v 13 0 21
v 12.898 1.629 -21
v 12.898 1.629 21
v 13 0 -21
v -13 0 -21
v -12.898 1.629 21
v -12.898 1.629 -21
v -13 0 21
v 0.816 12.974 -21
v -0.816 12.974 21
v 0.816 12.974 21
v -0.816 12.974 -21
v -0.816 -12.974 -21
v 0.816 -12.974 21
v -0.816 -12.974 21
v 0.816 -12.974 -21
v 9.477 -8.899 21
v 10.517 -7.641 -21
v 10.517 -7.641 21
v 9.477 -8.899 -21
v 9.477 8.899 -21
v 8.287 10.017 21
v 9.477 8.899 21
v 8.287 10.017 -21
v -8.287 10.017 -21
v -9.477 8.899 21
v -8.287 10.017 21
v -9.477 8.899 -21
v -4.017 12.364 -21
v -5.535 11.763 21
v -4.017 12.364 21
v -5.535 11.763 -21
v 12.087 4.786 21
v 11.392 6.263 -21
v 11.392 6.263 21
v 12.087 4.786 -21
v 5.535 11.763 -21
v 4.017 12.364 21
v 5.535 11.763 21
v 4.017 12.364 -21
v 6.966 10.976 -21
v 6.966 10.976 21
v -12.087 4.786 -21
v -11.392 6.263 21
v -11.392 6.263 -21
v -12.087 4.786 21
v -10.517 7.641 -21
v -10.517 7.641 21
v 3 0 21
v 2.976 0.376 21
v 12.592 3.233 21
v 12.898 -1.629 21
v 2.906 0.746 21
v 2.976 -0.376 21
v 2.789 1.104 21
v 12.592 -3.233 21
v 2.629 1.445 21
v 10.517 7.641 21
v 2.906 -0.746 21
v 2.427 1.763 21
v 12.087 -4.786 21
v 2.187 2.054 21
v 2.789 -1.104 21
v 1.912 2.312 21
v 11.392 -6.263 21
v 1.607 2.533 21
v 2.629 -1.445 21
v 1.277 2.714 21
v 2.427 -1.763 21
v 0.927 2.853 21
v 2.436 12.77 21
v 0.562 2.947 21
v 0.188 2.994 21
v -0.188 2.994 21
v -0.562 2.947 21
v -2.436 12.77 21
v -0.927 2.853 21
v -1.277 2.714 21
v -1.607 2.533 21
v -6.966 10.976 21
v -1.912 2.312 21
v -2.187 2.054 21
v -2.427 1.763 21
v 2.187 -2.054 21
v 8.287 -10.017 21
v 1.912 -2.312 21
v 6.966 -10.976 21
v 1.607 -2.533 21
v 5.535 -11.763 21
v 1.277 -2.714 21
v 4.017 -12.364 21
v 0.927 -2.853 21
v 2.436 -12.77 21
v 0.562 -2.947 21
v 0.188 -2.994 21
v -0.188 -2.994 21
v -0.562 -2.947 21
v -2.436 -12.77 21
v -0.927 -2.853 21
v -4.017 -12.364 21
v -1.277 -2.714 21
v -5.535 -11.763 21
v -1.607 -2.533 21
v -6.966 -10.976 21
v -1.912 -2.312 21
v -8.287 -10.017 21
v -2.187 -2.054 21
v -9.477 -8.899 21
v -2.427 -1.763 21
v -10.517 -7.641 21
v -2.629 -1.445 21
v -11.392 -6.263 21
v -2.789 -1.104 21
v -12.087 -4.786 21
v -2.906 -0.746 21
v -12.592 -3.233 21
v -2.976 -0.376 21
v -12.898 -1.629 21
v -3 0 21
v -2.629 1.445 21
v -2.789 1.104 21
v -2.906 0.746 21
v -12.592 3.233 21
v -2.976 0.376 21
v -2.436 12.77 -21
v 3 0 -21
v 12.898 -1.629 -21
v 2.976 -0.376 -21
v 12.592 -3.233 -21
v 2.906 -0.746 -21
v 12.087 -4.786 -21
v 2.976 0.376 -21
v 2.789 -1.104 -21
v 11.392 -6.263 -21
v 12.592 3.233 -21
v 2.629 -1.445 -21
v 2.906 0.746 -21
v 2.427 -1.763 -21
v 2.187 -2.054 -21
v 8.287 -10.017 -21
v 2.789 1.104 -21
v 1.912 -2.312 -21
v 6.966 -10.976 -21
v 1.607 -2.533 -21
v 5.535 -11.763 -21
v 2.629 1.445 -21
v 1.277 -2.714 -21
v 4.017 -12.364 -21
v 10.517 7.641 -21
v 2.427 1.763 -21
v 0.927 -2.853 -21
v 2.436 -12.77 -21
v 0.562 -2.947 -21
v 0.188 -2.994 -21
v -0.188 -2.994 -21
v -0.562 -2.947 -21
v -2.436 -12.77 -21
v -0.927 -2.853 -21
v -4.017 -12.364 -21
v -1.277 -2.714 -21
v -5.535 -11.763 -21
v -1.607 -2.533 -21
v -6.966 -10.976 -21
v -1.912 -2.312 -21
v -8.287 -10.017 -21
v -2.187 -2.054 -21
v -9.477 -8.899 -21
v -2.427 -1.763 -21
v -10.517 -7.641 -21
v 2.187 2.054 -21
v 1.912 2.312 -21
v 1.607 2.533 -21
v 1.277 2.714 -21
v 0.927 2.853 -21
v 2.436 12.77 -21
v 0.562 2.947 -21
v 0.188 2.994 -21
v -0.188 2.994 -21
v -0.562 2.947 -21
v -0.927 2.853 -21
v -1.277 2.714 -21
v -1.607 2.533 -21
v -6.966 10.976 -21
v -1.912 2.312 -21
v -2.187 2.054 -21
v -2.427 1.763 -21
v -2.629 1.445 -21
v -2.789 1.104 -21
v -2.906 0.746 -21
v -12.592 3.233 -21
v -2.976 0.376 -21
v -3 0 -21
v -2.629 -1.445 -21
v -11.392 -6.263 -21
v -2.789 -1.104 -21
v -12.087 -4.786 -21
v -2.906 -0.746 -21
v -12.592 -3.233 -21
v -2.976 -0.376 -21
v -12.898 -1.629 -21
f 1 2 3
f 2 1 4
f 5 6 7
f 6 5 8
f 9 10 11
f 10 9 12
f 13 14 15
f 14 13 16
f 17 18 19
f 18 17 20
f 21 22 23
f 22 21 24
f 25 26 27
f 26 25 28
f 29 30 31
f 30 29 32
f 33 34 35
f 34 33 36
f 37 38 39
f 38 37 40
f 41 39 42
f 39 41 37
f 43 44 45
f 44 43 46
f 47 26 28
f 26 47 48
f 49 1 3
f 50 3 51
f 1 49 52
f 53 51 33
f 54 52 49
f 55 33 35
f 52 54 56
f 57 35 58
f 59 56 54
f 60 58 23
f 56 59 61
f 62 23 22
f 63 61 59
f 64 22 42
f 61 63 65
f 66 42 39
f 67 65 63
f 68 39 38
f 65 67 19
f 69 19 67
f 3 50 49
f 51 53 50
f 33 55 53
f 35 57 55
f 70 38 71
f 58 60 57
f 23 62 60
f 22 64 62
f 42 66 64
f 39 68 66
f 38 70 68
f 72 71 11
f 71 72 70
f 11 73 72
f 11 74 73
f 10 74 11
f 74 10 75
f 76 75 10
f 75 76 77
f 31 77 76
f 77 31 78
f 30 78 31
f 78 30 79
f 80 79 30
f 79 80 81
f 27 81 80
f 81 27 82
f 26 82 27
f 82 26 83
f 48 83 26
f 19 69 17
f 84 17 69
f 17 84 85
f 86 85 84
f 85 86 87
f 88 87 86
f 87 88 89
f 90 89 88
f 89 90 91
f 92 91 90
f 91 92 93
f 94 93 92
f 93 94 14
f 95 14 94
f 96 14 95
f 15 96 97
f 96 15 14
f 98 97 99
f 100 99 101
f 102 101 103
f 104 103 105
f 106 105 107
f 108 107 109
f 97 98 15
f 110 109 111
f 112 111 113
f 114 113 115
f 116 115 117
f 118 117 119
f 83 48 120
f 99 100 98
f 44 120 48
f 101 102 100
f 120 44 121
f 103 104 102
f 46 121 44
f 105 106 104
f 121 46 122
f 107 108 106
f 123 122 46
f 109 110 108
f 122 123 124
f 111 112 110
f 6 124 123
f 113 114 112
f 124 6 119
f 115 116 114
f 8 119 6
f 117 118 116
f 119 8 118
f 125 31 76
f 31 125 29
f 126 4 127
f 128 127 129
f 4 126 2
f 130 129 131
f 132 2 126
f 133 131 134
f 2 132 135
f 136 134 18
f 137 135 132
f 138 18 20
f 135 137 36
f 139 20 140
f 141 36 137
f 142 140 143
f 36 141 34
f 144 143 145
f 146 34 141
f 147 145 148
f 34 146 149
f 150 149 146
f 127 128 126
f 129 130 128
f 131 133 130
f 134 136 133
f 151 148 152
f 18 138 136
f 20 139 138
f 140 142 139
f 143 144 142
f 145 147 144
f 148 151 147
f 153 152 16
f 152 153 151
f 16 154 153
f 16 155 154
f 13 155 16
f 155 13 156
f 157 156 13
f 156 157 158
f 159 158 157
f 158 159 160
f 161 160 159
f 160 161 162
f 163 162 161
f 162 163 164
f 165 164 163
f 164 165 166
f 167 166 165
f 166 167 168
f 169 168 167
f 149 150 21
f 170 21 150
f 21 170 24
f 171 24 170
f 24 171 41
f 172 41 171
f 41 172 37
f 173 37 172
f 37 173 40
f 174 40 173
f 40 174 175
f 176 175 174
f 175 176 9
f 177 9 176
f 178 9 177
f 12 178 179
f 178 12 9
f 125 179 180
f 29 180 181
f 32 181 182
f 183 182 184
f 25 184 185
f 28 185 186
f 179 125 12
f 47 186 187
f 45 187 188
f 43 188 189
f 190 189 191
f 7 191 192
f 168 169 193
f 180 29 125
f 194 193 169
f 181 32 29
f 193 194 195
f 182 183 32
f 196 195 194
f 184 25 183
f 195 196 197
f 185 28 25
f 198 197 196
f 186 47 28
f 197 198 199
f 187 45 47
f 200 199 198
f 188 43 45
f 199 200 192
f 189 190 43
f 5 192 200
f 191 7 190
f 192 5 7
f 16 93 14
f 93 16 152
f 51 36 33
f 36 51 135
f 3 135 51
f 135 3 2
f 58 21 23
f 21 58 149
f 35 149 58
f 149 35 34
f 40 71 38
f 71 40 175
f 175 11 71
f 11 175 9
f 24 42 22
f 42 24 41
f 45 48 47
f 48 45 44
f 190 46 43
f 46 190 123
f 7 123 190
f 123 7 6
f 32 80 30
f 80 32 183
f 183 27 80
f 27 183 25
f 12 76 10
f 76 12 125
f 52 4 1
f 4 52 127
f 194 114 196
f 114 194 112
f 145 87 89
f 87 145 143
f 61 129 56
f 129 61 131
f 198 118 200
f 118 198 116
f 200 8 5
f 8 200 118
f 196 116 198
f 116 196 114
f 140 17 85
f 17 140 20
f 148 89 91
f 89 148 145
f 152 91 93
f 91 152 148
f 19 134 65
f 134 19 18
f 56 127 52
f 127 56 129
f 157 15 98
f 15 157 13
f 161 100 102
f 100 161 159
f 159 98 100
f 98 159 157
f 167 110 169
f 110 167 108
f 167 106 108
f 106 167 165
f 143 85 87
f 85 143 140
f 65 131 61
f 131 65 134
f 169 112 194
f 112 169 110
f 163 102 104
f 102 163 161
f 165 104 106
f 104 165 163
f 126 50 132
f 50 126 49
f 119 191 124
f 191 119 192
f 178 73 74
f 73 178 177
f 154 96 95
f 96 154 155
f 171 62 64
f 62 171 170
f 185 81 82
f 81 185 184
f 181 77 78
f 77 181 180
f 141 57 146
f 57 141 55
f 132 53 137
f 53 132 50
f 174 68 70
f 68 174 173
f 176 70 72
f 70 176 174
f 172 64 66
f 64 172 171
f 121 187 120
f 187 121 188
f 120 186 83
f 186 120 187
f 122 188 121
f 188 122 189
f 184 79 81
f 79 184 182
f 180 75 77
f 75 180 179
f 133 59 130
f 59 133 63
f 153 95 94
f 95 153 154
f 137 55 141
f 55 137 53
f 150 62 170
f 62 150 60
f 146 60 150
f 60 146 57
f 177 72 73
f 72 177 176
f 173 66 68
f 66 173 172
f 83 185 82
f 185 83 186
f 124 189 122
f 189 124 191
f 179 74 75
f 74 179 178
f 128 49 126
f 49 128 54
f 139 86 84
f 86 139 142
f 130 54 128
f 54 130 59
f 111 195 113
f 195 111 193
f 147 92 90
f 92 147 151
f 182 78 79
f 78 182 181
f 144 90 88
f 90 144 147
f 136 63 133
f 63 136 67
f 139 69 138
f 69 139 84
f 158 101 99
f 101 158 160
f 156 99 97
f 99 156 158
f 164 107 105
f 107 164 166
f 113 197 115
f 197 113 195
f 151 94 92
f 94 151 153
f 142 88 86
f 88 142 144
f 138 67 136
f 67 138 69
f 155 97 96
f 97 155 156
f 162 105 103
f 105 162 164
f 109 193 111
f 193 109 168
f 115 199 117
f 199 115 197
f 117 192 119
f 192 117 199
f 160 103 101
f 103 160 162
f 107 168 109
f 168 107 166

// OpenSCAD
$fn = 50;


difference() {
	union() {
		translate(v = [0, 0, -21.0000000000]) {
			cylinder(h = 42, r = 13.0000000000);
		}
	}
	union() {
		translate(v = [0, 0, -100.0000000000]) {
			cylinder(h = 200, r = 3.0000000000);
		}
	}
}
